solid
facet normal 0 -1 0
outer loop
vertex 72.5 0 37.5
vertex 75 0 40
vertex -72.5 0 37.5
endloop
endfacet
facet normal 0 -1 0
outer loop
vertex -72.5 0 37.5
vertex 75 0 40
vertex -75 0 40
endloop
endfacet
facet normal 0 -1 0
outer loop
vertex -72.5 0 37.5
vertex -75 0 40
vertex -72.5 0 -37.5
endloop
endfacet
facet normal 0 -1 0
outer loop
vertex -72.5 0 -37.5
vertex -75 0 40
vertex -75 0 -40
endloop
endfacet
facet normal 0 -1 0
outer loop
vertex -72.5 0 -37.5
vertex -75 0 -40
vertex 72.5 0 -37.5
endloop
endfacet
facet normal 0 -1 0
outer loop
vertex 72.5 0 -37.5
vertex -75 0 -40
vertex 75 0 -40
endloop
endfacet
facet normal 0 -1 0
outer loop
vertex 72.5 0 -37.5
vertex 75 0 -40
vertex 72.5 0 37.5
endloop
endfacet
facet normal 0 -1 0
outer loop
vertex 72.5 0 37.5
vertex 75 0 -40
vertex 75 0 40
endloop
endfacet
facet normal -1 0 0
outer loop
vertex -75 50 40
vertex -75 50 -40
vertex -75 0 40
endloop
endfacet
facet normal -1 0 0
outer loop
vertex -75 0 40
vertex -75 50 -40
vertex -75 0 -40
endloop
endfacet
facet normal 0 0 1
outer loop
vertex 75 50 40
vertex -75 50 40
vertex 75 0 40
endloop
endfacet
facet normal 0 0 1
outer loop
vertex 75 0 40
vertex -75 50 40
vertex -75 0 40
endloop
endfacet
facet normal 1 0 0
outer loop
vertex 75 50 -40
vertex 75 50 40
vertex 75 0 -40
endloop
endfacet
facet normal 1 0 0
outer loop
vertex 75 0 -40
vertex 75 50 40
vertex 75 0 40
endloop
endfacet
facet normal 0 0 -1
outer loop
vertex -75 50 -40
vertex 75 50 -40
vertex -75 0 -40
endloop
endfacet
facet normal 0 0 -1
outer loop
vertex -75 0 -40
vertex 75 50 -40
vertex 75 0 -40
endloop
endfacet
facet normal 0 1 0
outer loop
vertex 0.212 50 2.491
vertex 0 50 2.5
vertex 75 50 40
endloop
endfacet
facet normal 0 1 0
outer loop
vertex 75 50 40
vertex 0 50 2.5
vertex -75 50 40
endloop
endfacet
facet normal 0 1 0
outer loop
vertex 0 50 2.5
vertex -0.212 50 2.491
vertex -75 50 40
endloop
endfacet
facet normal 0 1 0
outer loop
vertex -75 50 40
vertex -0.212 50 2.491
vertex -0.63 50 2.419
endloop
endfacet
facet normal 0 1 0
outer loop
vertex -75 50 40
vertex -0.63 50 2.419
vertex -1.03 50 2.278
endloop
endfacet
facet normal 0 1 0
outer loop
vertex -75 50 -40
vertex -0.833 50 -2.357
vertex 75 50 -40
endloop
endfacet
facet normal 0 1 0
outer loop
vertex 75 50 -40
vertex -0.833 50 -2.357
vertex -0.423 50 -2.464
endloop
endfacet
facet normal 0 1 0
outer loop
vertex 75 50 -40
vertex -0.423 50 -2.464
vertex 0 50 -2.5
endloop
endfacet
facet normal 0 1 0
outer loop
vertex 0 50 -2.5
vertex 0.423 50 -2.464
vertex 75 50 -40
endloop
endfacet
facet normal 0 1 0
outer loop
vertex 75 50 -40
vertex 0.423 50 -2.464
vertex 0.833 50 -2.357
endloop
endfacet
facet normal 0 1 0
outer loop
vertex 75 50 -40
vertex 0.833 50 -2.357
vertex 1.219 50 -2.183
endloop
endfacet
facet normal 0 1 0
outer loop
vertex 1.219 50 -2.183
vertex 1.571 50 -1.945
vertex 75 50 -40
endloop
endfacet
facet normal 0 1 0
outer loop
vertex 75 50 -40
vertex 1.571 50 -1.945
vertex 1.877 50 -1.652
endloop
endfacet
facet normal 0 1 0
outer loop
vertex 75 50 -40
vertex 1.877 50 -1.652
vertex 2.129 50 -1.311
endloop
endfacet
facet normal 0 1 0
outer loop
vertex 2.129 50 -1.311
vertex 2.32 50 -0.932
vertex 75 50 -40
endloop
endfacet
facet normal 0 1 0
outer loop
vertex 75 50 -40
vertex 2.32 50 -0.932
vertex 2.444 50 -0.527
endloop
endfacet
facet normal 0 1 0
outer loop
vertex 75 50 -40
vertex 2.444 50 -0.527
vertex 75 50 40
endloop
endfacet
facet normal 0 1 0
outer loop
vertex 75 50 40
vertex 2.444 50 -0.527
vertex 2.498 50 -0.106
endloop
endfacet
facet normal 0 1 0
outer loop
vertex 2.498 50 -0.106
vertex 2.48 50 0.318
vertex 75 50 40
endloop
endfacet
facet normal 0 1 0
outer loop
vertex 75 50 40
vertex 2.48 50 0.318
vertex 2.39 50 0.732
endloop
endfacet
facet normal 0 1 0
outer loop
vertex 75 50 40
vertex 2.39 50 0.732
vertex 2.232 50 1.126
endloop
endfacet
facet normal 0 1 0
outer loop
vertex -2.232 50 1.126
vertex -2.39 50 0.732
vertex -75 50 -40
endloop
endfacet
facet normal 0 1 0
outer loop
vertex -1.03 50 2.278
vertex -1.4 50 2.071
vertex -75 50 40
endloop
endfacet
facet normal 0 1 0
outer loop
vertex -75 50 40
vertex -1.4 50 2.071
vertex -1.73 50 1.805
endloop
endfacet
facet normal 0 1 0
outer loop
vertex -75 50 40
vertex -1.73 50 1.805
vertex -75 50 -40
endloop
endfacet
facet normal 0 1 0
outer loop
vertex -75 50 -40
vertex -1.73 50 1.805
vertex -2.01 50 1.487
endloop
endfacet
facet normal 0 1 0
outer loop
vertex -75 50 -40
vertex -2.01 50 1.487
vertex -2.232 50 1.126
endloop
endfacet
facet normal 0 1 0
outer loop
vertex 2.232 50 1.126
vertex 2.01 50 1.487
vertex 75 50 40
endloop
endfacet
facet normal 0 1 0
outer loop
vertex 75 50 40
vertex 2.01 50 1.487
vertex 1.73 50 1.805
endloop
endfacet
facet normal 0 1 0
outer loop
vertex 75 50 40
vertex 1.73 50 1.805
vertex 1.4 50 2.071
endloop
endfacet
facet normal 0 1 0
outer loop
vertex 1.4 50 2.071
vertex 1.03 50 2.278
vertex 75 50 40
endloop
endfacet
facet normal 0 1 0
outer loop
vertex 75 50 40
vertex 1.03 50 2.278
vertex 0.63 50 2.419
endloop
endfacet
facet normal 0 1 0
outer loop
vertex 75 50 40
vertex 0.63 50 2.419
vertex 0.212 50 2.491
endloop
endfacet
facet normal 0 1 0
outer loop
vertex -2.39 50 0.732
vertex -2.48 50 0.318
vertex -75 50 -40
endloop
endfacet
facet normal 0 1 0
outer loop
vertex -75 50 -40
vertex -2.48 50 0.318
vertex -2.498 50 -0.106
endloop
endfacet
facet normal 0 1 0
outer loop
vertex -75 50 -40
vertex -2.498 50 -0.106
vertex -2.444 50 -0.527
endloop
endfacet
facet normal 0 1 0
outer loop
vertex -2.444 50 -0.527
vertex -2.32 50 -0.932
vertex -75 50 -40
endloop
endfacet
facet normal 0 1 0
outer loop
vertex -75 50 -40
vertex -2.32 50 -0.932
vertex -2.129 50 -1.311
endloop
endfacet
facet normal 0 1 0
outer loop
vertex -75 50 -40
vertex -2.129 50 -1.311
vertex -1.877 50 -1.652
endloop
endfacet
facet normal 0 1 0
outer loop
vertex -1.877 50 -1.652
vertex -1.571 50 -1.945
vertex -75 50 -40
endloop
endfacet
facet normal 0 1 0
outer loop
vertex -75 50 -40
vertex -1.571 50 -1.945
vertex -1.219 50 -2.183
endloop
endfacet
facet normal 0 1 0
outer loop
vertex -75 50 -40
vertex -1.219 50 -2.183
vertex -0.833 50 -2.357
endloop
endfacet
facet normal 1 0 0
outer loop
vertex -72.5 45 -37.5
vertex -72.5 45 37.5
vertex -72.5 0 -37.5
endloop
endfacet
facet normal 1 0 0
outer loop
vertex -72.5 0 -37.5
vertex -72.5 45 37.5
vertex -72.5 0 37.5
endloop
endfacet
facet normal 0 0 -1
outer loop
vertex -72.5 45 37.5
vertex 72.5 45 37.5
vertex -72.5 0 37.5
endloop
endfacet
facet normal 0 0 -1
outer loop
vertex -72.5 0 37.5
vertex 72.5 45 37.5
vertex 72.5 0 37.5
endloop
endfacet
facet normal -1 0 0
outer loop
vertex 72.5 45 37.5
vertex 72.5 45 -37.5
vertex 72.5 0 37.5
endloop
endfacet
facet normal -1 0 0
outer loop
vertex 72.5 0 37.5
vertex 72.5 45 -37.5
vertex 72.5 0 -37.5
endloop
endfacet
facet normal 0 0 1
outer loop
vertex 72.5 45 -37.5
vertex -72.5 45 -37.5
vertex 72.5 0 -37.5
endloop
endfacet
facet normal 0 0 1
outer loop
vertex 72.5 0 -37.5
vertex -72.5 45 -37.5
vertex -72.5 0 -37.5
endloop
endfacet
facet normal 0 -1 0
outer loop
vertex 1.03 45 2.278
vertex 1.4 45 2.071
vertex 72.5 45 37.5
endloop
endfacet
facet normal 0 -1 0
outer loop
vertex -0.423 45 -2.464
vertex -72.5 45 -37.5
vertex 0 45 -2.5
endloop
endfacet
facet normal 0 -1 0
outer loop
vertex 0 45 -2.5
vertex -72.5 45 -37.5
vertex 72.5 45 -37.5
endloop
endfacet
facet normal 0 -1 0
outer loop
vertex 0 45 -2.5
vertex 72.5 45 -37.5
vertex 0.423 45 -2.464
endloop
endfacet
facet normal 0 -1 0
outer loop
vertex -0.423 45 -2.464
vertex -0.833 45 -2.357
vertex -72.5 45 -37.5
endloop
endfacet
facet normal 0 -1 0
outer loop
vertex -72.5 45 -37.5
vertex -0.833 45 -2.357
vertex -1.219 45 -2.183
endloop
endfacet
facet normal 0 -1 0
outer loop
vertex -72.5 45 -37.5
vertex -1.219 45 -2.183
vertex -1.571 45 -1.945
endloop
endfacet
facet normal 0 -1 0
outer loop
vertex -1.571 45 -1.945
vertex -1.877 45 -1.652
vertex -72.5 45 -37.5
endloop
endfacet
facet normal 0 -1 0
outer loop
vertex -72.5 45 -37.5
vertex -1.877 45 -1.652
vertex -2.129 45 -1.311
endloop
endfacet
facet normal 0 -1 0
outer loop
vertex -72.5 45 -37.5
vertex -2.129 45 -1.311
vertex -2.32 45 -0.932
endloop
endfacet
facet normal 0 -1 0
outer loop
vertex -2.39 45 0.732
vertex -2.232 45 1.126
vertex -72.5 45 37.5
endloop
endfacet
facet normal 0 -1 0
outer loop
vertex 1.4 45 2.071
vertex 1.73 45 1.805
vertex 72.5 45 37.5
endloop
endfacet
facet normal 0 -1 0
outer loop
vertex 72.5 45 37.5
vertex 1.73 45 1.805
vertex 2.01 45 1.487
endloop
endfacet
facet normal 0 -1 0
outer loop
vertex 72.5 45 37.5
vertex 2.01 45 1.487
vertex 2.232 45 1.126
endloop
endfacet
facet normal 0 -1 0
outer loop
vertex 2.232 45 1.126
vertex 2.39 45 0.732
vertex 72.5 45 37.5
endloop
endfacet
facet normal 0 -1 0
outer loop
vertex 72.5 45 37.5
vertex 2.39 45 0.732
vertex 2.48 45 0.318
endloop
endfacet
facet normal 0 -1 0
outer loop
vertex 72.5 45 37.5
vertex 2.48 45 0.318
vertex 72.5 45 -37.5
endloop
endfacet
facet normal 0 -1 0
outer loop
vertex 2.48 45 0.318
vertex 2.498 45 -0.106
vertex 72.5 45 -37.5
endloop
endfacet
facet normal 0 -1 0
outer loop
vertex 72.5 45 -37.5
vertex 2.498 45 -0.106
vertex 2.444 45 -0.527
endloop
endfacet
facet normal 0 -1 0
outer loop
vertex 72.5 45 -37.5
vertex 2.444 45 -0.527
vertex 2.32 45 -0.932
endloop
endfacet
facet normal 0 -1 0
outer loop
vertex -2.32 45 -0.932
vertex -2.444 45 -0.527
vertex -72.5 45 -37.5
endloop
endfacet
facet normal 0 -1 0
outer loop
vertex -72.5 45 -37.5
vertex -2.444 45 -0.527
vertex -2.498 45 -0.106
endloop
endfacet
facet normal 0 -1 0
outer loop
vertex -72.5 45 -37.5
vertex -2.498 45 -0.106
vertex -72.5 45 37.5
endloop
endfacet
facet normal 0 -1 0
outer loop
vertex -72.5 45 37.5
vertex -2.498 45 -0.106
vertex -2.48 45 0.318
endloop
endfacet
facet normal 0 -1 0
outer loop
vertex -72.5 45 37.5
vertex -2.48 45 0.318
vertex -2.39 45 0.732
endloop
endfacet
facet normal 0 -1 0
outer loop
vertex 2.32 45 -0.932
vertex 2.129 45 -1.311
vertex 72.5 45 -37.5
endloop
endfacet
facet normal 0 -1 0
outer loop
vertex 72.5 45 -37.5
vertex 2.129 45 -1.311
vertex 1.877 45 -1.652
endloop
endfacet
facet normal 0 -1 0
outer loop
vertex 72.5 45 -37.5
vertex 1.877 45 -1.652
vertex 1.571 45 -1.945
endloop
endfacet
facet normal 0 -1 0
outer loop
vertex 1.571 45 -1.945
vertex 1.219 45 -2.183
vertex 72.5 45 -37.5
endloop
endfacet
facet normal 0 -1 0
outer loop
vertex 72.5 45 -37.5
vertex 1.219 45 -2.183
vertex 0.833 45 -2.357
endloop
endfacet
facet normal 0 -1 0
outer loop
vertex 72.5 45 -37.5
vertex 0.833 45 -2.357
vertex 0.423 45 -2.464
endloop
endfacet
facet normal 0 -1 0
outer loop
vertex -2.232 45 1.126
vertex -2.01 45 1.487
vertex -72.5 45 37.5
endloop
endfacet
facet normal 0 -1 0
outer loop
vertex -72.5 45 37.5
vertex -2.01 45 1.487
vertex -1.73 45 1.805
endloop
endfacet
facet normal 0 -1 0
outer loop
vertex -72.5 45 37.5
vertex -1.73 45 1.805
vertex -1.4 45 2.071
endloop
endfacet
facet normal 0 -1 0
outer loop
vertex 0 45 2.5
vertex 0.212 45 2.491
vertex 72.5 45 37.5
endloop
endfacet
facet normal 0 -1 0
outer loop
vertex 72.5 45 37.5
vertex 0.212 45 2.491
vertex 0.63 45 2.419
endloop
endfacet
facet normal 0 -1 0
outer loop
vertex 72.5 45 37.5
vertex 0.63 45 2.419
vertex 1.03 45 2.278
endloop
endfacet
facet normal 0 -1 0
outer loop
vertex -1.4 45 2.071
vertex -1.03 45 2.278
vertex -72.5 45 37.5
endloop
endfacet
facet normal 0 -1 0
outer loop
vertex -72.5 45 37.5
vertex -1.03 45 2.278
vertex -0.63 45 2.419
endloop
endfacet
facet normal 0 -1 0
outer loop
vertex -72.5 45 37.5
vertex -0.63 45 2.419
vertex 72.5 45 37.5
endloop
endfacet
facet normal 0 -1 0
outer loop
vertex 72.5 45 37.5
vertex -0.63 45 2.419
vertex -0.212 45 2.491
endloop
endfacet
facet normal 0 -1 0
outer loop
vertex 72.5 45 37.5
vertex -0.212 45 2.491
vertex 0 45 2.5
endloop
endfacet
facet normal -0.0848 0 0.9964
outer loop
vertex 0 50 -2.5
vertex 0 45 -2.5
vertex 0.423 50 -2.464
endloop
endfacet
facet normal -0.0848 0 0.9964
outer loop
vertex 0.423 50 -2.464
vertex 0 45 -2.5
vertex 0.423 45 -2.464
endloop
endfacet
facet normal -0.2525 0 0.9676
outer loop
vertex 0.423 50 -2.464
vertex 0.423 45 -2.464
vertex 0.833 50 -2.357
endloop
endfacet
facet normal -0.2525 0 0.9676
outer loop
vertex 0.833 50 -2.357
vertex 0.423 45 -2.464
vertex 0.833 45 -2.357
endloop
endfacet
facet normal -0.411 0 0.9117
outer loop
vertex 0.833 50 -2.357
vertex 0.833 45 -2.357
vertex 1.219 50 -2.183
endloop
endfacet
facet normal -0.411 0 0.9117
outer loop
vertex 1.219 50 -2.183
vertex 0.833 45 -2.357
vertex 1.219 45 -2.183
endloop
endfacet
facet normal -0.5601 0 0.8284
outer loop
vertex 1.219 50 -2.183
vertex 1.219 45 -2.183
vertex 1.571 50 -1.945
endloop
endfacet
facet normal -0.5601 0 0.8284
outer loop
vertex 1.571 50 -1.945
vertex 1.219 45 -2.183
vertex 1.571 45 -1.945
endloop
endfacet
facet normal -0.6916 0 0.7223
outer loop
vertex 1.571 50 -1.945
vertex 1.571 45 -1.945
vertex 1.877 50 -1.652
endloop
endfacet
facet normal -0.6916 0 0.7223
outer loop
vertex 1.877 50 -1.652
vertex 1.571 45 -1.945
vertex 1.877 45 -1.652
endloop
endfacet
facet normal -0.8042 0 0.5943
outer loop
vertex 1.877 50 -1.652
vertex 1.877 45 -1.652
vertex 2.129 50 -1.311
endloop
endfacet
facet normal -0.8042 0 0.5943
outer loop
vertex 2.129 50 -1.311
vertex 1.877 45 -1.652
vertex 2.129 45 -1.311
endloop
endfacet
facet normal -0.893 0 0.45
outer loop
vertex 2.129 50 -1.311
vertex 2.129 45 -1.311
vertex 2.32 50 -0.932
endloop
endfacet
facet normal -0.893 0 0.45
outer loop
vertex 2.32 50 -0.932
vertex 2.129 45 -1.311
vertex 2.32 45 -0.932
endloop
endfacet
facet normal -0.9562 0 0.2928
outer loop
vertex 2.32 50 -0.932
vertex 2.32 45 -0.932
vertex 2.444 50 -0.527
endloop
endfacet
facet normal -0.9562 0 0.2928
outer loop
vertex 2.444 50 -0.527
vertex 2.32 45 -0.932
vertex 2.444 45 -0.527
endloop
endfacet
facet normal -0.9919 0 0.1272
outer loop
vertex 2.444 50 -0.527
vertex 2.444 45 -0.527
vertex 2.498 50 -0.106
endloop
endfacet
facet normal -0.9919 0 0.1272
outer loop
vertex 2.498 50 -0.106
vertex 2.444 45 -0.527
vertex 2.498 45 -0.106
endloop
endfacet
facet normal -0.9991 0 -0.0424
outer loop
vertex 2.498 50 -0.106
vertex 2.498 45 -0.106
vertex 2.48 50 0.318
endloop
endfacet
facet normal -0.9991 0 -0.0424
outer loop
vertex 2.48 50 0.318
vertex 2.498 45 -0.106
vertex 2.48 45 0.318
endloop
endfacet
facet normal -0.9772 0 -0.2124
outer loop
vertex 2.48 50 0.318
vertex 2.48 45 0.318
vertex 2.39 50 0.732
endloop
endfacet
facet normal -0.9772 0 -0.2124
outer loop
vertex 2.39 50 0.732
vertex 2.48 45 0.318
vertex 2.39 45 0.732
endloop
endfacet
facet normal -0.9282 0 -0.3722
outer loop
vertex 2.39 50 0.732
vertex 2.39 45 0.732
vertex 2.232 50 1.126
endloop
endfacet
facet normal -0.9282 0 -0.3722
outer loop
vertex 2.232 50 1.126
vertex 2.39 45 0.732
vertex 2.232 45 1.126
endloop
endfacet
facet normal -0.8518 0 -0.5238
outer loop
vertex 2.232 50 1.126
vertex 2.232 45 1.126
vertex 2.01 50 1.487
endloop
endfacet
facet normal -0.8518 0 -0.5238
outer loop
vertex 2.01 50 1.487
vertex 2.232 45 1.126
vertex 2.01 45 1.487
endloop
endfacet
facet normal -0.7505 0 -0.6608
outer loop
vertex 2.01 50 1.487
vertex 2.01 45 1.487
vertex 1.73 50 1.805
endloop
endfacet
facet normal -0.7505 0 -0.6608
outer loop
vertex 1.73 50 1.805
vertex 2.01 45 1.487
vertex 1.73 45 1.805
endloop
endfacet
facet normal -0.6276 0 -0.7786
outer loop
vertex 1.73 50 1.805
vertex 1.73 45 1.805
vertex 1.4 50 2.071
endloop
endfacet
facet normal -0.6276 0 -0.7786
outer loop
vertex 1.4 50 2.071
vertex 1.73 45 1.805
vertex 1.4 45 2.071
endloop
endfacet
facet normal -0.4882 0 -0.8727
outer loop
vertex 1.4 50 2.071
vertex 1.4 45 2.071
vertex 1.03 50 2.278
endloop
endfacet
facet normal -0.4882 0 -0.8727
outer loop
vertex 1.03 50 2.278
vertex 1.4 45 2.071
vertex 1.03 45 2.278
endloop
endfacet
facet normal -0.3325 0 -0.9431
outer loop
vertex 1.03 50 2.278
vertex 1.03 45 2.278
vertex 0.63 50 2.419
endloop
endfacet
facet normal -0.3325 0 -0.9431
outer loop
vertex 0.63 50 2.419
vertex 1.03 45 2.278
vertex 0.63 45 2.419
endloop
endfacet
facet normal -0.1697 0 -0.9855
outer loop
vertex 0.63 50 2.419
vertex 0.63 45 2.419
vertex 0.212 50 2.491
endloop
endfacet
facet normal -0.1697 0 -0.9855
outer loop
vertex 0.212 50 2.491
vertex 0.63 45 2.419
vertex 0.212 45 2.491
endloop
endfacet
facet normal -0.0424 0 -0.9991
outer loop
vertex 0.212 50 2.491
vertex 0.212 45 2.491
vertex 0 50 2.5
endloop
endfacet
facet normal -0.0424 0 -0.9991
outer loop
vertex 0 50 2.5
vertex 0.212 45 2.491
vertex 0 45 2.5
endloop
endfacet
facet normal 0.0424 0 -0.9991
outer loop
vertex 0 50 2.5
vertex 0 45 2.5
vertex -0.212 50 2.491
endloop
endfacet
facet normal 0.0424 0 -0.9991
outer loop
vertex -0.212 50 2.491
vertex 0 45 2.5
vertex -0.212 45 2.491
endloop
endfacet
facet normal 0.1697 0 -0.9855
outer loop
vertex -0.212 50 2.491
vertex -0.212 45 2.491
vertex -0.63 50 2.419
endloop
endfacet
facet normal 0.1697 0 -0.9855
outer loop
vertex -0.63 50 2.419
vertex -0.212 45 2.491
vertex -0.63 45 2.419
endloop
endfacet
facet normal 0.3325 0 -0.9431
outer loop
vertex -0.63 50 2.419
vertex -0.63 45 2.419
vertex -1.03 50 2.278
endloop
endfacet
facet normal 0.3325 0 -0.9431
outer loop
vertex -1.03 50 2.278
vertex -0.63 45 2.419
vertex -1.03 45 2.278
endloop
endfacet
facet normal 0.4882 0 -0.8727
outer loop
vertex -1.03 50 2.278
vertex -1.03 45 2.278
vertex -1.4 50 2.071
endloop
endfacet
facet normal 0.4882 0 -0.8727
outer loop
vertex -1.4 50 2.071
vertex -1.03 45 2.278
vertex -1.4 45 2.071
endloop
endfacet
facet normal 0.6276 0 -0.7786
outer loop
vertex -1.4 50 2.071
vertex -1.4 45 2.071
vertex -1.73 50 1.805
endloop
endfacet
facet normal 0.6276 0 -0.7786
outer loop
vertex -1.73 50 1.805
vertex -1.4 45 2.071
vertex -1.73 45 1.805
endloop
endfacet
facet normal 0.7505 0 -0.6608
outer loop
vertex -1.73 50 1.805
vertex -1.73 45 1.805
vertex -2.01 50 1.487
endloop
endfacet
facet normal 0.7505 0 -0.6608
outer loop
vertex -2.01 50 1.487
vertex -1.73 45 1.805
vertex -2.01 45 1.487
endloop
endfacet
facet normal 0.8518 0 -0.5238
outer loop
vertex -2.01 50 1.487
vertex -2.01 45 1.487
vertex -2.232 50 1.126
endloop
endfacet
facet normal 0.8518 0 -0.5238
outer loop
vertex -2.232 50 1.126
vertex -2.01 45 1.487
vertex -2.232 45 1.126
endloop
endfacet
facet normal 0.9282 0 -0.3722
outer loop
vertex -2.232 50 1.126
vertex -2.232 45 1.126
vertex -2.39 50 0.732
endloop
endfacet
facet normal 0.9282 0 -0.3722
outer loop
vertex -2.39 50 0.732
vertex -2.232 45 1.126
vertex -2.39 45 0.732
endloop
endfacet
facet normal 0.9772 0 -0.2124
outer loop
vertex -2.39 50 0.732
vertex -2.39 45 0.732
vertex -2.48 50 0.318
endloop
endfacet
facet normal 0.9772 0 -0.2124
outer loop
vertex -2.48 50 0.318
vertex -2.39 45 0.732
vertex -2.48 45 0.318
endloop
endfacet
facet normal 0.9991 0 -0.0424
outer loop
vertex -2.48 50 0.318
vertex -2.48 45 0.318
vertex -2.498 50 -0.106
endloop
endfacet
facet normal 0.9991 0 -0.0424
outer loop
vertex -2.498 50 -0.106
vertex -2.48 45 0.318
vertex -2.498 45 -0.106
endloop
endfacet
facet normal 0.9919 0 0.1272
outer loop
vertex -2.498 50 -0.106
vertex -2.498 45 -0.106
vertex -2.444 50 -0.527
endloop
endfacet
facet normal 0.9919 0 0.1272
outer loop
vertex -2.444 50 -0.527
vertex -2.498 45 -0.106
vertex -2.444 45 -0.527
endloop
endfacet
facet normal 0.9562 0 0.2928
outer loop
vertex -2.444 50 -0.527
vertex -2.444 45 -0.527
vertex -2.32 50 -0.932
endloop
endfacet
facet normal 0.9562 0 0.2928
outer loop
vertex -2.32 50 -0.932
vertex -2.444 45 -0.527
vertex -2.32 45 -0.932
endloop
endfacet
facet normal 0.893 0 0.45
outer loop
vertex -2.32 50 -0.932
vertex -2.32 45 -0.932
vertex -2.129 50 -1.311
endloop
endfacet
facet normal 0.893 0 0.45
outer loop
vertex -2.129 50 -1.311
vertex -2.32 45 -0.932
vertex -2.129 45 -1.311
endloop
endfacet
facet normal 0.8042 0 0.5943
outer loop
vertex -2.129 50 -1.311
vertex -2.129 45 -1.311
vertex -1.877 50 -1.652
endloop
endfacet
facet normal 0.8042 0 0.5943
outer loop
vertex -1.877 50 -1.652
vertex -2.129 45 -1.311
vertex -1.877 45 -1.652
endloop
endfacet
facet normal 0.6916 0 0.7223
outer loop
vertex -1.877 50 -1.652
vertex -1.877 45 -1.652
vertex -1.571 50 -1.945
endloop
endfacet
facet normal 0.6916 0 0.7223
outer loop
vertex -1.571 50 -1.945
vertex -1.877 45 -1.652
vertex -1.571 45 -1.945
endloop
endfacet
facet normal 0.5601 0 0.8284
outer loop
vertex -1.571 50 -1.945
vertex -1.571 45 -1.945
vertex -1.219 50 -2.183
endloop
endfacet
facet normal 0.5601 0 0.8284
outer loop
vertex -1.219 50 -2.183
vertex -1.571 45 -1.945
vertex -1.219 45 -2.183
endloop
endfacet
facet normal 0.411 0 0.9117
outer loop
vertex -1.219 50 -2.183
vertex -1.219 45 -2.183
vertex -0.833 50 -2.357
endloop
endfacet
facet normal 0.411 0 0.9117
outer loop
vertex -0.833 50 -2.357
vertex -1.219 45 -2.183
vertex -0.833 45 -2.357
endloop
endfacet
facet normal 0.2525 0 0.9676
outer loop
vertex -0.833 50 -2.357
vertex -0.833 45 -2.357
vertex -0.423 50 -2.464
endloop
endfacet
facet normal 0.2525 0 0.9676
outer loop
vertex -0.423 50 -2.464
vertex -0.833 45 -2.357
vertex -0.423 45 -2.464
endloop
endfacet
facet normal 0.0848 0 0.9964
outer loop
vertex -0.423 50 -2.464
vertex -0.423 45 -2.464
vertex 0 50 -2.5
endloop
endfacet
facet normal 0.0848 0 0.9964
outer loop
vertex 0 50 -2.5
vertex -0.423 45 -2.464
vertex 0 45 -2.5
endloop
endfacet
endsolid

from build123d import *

# Parameters (mm, degrees)
SKETCH1_W           = 150
SKETCH1_H           = 80
BOSS_EXTRUDE4_DEPTH = 50
SKETCH2_W           = 145
SKETCH2_H           = 75
CUT_EXTRUDE12_DEPTH = 45
SKETCH3_R           = 2.5
CUT_EXTRUDE13_DEPTH = 99.615414617


with BuildPart() as part:
    # Sketch1 → Boss-Extrude4 (new body)
    with BuildSketch(Plane(origin=(0, 0, 0), x_dir=(1, 0, 0), z_dir=(0, 1, 0))):
        Rectangle(SKETCH1_W, SKETCH1_H)
    extrude(amount=BOSS_EXTRUDE4_DEPTH)

    # Sketch2 → Cut-Extrude12 (cut)
    with BuildSketch(Plane(origin=(0, 0, 0), x_dir=(1, 0, 0), z_dir=(0, 1, 0))):
        Rectangle(SKETCH2_W, SKETCH2_H)
    extrude(amount=CUT_EXTRUDE12_DEPTH, mode=Mode.SUBTRACT)

    # Sketch3 → Cut-Extrude13 (cut, through all)
    with BuildSketch(Plane(origin=(0, 0, 0), x_dir=(1, 0, 0), z_dir=(0, 1, 0))):
        with Locations(Location((0, 0, 0), (0, 0, 270))):
            Circle(SKETCH3_R)
    extrude(amount=CUT_EXTRUDE13_DEPTH, mode=Mode.SUBTRACT)


solid = part.part
